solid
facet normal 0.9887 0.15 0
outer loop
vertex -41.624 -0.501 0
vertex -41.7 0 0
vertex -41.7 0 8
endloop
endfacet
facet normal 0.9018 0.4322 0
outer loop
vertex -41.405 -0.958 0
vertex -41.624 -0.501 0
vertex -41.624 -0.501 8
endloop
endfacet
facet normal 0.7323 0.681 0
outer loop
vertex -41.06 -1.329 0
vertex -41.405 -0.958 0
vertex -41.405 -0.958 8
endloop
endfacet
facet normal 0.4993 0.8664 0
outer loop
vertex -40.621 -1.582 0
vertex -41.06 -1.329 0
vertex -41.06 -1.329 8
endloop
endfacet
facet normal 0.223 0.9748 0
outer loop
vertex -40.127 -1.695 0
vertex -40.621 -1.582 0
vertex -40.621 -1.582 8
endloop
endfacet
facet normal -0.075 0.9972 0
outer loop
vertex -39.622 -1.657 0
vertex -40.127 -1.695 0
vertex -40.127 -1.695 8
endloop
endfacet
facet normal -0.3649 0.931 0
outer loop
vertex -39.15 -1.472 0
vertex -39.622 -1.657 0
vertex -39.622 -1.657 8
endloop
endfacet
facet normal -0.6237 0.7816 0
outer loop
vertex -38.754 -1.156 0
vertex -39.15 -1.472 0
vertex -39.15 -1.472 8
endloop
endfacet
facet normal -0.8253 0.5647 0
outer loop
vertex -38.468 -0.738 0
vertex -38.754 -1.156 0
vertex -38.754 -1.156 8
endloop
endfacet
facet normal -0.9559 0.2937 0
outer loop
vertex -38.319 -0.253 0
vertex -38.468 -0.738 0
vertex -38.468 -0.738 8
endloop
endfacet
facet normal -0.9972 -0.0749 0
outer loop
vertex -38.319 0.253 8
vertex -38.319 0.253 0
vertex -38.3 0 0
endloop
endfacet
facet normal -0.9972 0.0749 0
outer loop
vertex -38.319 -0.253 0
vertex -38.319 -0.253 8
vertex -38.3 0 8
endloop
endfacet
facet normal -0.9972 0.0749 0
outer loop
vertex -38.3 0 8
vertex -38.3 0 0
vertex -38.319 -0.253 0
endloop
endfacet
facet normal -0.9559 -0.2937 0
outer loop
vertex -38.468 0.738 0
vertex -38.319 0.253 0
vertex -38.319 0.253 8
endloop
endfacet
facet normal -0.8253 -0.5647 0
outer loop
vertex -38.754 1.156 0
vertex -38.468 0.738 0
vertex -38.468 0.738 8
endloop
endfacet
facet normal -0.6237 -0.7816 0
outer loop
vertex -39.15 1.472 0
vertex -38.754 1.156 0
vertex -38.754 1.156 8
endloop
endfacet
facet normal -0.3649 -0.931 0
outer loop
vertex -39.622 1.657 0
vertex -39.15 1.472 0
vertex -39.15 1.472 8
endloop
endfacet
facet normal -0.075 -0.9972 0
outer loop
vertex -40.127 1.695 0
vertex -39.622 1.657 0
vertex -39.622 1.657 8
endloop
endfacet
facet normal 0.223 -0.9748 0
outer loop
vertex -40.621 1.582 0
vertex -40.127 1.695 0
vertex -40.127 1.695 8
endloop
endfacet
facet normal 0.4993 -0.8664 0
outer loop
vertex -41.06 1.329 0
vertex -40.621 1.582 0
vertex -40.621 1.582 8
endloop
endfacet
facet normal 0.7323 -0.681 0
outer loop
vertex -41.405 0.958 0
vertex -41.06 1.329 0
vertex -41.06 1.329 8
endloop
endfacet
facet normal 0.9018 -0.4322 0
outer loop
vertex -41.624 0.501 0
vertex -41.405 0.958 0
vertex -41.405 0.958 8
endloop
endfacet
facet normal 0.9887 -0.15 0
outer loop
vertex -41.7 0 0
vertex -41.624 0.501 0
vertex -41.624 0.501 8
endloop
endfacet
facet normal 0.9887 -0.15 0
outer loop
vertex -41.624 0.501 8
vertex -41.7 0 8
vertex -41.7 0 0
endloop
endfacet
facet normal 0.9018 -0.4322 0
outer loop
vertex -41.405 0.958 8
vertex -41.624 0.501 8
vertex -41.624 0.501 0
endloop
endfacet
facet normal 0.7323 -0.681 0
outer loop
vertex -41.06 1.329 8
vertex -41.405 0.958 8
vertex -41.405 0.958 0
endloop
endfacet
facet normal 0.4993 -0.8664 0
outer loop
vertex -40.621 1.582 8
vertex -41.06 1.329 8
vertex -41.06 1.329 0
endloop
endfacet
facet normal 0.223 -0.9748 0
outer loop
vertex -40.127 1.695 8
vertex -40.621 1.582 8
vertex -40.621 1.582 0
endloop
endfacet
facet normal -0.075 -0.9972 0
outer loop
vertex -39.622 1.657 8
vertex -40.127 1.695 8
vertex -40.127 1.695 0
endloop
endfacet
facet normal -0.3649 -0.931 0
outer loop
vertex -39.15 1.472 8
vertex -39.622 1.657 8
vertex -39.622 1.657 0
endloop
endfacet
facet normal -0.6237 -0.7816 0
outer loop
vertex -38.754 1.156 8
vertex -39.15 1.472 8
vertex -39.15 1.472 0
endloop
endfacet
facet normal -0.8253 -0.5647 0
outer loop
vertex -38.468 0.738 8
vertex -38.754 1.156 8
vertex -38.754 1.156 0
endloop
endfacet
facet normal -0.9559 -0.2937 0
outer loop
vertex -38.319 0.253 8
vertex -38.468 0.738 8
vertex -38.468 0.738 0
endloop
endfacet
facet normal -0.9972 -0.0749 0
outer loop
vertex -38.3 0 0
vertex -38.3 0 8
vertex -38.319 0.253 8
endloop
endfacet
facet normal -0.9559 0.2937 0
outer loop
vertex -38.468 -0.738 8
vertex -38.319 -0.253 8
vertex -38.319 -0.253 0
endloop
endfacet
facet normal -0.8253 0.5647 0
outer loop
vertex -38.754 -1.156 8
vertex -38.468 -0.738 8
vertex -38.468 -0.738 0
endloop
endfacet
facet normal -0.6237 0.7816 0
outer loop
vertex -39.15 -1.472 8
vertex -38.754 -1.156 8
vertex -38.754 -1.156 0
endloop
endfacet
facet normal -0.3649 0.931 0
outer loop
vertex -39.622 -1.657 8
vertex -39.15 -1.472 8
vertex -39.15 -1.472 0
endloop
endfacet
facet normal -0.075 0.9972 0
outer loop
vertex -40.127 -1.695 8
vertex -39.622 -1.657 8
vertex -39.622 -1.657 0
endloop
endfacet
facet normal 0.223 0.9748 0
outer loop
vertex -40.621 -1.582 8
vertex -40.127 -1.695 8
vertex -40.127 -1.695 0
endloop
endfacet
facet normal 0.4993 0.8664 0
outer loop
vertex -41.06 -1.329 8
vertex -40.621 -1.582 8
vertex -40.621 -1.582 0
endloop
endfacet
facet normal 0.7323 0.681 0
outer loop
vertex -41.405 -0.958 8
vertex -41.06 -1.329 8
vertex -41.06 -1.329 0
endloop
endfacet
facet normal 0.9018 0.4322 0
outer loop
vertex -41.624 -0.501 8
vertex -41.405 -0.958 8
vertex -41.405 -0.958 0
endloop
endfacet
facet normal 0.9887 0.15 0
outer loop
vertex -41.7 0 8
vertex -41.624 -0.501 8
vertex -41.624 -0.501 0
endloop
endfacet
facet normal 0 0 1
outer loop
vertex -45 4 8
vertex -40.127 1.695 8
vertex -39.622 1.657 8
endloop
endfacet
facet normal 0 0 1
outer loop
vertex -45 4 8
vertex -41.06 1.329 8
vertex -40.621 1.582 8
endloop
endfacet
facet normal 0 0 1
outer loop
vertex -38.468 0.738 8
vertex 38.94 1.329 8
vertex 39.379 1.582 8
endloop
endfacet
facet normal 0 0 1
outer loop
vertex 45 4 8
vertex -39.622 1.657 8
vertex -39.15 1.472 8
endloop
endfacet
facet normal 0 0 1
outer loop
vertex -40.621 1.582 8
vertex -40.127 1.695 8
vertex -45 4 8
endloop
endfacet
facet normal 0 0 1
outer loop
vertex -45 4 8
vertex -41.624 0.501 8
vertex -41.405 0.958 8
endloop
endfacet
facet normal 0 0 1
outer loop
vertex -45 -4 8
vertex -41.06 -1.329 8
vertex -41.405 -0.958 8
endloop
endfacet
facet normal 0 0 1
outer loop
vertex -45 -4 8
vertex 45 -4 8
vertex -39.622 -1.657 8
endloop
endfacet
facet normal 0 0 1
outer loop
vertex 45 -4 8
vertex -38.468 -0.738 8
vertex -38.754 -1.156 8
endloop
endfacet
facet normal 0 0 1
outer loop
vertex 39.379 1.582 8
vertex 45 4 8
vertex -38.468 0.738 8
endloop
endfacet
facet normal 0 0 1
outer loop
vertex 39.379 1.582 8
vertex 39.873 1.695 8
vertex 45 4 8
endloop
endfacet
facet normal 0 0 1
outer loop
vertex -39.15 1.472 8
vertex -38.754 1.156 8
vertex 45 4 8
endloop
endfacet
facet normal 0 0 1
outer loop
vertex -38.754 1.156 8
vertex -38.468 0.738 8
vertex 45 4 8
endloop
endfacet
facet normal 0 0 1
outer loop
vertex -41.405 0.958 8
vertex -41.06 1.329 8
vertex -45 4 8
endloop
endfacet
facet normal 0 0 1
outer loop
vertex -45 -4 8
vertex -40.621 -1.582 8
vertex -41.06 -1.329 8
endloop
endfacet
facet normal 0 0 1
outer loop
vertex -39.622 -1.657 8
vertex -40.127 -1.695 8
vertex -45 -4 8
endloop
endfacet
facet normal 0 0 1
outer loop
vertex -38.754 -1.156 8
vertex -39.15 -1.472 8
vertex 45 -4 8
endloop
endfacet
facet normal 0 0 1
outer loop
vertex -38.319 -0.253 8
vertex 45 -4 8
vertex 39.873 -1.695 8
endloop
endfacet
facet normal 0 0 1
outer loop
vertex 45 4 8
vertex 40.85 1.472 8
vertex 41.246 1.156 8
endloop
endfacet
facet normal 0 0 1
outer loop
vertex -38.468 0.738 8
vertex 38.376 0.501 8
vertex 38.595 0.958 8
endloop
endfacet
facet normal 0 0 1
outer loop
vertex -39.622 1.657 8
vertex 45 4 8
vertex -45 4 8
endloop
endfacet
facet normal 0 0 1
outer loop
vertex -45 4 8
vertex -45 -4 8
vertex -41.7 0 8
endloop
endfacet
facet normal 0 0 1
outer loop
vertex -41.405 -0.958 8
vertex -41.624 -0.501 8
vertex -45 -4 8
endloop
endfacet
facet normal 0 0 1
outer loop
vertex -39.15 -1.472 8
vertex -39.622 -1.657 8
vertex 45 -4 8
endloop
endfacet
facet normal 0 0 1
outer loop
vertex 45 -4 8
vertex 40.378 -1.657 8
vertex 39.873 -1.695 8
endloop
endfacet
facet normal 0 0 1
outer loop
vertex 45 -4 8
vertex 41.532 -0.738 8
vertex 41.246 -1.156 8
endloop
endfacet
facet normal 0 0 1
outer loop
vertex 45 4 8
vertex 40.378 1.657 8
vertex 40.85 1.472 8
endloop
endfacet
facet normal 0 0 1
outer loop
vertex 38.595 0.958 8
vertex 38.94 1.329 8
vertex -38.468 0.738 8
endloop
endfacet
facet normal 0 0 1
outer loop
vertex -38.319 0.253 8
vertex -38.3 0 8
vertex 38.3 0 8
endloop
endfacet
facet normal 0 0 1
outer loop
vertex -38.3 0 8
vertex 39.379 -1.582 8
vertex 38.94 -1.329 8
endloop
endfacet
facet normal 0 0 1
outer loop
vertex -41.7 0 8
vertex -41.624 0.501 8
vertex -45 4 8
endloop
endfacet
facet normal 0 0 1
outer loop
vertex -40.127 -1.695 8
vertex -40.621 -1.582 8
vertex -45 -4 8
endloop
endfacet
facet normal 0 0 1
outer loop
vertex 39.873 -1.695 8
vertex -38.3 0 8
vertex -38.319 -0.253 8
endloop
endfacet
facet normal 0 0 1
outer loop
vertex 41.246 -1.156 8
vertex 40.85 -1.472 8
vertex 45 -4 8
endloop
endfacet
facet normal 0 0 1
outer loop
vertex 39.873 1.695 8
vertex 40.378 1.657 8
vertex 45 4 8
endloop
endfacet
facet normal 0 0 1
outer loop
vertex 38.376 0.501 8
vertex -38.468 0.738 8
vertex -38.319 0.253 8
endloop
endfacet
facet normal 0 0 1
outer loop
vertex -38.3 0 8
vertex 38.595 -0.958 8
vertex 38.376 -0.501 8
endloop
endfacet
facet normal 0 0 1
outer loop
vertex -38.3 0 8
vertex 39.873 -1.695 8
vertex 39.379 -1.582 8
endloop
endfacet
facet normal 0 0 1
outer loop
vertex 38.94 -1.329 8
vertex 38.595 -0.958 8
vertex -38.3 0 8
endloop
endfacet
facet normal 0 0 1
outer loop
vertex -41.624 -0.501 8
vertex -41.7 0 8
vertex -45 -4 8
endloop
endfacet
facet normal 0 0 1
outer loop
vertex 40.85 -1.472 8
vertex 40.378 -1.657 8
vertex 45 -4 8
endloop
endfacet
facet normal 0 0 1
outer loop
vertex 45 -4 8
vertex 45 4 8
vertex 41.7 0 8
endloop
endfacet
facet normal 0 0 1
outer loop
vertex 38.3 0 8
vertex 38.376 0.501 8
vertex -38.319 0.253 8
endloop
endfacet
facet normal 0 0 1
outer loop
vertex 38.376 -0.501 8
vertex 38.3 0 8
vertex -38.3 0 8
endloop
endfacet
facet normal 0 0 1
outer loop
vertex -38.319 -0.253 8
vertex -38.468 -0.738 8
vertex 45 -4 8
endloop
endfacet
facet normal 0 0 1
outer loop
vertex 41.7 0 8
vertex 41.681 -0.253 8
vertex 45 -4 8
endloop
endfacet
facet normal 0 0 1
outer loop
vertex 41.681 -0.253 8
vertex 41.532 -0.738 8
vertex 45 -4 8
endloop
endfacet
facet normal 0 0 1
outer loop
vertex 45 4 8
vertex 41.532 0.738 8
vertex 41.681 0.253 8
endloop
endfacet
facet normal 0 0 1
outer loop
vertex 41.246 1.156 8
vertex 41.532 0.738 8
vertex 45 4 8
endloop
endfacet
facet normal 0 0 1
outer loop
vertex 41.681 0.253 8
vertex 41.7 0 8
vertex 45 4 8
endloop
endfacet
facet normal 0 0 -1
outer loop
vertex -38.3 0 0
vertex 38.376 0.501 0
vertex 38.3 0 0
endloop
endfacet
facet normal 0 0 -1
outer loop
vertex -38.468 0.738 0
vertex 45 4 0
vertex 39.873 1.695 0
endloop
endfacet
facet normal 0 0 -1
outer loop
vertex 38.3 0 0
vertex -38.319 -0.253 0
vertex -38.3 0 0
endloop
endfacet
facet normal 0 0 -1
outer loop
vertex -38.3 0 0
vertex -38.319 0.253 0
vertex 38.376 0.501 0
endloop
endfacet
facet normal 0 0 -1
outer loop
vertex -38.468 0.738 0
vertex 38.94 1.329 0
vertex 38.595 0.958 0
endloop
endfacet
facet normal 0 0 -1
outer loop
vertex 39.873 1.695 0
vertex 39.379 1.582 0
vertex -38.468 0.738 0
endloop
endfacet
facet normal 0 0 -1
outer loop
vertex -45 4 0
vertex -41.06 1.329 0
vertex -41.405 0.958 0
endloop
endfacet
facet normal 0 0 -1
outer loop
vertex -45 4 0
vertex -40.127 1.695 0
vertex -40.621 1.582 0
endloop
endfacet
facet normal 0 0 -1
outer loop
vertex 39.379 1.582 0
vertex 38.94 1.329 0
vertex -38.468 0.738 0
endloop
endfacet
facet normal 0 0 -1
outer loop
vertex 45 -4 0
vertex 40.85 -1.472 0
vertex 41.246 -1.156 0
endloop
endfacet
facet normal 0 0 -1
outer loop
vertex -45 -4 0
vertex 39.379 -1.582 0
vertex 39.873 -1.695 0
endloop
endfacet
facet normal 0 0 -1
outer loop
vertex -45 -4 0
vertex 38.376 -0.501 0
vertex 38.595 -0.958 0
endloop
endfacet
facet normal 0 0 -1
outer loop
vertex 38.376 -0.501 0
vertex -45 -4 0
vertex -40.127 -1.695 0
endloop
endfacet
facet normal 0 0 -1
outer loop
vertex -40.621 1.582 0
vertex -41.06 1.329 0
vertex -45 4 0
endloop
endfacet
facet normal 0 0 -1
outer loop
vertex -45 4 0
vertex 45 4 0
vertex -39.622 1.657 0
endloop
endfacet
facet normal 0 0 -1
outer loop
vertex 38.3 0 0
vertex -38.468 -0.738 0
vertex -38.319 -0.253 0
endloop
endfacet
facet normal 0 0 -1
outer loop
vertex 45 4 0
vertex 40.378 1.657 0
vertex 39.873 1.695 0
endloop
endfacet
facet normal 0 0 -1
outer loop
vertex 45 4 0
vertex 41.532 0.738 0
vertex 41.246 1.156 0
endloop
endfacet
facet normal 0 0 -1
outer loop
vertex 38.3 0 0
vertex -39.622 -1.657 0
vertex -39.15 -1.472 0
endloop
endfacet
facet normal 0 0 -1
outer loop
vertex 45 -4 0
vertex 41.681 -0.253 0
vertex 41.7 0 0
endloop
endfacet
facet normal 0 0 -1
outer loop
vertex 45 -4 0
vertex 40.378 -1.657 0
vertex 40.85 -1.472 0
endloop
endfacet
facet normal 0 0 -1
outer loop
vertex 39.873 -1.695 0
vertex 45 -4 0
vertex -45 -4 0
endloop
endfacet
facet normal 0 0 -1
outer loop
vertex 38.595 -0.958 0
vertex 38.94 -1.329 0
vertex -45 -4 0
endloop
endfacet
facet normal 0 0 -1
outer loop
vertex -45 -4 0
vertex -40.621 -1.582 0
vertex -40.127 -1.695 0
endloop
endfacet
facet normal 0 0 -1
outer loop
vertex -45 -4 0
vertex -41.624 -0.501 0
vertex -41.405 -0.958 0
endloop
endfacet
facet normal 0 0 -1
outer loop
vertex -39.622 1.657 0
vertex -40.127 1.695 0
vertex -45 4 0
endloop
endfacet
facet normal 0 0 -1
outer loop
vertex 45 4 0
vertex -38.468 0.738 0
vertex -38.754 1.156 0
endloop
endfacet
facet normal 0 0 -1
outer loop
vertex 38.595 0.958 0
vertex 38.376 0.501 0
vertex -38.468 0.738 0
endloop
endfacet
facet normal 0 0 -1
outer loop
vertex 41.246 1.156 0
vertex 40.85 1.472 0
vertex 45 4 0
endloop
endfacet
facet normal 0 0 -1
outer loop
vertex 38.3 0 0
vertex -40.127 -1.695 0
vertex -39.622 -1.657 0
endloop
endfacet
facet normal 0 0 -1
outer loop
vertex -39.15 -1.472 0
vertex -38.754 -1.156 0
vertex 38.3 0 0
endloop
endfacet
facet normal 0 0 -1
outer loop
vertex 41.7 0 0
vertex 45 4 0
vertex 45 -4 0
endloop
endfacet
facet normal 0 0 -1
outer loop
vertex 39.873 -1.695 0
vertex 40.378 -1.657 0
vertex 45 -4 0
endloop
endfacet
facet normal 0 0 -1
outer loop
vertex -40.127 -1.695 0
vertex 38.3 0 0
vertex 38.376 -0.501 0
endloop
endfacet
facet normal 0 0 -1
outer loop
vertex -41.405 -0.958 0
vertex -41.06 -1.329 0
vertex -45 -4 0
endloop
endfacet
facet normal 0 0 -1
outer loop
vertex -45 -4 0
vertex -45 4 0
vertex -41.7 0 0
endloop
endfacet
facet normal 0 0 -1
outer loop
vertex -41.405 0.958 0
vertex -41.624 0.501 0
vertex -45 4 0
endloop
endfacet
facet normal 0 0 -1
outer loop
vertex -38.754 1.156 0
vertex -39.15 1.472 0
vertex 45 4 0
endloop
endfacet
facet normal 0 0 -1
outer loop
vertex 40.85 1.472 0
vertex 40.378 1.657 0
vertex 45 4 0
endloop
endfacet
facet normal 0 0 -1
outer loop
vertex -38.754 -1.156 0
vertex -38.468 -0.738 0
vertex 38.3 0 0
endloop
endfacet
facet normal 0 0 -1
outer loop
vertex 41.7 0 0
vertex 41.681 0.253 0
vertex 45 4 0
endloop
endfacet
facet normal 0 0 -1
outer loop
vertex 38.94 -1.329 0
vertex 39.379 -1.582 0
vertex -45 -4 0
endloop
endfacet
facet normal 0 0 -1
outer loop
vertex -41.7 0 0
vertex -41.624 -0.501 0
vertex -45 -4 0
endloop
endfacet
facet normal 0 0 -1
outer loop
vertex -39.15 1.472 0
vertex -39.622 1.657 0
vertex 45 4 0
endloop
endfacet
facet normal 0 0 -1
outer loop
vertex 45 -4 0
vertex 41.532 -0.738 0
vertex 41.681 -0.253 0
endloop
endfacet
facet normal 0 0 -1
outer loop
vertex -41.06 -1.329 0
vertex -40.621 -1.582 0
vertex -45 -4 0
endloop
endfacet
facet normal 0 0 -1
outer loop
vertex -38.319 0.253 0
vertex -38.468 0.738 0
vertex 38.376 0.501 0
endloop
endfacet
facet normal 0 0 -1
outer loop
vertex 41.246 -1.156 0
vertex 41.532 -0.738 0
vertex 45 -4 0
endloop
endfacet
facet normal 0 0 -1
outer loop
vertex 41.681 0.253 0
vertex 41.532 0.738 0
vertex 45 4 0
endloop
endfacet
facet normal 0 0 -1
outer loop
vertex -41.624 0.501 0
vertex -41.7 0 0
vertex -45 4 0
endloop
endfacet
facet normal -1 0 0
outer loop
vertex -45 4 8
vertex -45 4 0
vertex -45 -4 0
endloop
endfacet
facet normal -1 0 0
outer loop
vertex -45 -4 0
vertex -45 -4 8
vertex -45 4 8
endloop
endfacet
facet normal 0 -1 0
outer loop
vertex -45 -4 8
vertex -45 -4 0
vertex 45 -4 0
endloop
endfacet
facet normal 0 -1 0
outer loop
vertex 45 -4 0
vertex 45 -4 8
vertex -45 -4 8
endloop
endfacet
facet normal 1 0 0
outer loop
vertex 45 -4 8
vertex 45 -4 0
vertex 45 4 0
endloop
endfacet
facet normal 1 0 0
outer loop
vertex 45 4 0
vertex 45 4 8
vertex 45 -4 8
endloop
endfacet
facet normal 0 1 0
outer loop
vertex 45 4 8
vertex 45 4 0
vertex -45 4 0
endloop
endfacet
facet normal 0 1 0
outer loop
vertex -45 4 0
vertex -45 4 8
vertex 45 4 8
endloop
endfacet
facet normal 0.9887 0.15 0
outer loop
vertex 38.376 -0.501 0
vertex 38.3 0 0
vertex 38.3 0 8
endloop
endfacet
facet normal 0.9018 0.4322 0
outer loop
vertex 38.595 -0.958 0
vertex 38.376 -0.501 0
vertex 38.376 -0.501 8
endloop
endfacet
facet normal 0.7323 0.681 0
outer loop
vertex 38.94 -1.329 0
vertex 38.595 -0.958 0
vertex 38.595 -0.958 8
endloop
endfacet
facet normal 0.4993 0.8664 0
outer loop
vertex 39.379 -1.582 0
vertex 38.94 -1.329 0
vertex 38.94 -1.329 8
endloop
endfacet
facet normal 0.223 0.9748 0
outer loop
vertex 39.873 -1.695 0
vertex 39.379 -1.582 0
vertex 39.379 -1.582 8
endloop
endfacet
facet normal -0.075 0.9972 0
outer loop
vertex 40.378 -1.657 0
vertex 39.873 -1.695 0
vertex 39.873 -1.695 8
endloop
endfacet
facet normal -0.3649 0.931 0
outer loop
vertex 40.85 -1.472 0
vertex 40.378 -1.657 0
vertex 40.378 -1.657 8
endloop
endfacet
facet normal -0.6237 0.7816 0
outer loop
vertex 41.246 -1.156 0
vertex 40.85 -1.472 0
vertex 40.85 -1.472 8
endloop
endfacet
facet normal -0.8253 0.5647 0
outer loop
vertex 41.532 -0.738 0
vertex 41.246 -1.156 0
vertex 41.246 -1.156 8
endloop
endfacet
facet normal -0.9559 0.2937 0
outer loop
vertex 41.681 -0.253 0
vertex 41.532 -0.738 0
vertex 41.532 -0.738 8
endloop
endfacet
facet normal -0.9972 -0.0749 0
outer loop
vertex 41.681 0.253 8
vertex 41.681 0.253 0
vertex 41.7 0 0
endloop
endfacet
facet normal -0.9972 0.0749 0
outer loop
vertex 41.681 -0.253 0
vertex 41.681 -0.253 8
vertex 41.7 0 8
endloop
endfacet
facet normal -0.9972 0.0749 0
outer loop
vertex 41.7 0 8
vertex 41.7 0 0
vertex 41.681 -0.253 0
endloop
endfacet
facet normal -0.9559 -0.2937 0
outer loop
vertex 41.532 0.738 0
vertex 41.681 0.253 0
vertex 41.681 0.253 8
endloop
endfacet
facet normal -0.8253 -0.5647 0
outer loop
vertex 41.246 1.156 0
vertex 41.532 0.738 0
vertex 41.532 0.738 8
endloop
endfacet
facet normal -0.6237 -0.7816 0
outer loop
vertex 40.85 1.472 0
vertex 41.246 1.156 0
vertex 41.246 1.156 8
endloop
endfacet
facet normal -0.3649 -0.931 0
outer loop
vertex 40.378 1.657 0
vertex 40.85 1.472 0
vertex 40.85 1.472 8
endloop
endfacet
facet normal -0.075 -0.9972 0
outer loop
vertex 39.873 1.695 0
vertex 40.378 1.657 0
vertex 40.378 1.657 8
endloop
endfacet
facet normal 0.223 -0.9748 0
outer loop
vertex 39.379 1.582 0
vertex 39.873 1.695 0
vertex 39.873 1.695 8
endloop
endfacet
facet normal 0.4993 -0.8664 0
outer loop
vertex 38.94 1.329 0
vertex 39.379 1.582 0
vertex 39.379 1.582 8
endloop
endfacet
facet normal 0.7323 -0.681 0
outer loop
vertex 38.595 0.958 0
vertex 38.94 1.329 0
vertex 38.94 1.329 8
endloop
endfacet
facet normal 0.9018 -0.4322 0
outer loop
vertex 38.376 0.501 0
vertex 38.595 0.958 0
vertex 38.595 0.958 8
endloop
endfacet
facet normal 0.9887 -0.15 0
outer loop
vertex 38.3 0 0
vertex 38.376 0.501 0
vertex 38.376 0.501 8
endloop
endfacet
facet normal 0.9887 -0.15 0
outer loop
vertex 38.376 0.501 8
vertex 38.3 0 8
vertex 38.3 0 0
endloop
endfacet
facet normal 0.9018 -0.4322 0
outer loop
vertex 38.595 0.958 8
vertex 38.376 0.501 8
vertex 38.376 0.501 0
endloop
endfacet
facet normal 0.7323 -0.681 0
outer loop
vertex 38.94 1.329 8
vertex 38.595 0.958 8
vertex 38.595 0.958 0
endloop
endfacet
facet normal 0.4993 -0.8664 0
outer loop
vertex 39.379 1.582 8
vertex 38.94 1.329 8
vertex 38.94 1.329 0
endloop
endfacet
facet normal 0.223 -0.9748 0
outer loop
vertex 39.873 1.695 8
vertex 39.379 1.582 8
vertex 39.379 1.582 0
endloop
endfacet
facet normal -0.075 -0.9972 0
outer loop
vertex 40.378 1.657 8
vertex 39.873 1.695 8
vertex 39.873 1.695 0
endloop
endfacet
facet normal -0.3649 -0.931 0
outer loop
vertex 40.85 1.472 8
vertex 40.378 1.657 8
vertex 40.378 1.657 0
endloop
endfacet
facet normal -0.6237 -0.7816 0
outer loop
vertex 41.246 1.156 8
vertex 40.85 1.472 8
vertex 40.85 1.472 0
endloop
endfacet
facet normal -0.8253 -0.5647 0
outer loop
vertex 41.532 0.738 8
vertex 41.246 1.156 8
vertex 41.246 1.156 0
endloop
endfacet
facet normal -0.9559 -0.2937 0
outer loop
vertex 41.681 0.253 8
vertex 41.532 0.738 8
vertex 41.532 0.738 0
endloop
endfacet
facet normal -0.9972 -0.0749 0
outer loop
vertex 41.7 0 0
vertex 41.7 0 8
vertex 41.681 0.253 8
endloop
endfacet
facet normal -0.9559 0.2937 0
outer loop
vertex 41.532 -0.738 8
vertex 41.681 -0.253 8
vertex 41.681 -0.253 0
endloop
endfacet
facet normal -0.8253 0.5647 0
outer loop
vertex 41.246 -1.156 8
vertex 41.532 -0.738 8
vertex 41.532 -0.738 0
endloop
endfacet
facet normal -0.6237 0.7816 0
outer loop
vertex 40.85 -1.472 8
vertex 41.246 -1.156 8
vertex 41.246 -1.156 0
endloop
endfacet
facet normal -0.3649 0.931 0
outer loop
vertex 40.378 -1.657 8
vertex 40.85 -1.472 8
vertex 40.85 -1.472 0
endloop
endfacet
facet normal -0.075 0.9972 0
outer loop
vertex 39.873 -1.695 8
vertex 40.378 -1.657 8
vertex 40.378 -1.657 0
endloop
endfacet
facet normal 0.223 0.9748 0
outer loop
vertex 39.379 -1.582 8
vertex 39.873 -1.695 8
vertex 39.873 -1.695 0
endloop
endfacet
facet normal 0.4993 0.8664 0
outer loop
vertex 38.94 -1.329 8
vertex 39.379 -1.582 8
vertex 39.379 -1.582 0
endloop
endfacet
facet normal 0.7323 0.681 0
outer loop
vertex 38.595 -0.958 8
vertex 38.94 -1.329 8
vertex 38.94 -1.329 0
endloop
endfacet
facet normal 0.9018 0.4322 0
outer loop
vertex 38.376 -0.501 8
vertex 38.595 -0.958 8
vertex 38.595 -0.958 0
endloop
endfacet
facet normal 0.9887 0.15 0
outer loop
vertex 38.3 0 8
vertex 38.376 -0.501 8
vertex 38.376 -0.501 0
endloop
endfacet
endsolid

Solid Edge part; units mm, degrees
sketch "Sketch1" plane through (0, 0, 0) normal (0, 0, 1) x (1, 0, 0)
  line L0 (-45, -4) -> (45, -4)
  line L1 (45, -4) -> (45, 4)
  line L2 (45, 4) -> (-45, 4)
  line L3 (-45, 4) -> (-45, -4)
  circle A0 centre (-40, 0) radius 1.7
  circle A1 centre (40, 0) radius 1.7
extrude "Protrusion1" add sketch "Sketch1" along normal blind 8
